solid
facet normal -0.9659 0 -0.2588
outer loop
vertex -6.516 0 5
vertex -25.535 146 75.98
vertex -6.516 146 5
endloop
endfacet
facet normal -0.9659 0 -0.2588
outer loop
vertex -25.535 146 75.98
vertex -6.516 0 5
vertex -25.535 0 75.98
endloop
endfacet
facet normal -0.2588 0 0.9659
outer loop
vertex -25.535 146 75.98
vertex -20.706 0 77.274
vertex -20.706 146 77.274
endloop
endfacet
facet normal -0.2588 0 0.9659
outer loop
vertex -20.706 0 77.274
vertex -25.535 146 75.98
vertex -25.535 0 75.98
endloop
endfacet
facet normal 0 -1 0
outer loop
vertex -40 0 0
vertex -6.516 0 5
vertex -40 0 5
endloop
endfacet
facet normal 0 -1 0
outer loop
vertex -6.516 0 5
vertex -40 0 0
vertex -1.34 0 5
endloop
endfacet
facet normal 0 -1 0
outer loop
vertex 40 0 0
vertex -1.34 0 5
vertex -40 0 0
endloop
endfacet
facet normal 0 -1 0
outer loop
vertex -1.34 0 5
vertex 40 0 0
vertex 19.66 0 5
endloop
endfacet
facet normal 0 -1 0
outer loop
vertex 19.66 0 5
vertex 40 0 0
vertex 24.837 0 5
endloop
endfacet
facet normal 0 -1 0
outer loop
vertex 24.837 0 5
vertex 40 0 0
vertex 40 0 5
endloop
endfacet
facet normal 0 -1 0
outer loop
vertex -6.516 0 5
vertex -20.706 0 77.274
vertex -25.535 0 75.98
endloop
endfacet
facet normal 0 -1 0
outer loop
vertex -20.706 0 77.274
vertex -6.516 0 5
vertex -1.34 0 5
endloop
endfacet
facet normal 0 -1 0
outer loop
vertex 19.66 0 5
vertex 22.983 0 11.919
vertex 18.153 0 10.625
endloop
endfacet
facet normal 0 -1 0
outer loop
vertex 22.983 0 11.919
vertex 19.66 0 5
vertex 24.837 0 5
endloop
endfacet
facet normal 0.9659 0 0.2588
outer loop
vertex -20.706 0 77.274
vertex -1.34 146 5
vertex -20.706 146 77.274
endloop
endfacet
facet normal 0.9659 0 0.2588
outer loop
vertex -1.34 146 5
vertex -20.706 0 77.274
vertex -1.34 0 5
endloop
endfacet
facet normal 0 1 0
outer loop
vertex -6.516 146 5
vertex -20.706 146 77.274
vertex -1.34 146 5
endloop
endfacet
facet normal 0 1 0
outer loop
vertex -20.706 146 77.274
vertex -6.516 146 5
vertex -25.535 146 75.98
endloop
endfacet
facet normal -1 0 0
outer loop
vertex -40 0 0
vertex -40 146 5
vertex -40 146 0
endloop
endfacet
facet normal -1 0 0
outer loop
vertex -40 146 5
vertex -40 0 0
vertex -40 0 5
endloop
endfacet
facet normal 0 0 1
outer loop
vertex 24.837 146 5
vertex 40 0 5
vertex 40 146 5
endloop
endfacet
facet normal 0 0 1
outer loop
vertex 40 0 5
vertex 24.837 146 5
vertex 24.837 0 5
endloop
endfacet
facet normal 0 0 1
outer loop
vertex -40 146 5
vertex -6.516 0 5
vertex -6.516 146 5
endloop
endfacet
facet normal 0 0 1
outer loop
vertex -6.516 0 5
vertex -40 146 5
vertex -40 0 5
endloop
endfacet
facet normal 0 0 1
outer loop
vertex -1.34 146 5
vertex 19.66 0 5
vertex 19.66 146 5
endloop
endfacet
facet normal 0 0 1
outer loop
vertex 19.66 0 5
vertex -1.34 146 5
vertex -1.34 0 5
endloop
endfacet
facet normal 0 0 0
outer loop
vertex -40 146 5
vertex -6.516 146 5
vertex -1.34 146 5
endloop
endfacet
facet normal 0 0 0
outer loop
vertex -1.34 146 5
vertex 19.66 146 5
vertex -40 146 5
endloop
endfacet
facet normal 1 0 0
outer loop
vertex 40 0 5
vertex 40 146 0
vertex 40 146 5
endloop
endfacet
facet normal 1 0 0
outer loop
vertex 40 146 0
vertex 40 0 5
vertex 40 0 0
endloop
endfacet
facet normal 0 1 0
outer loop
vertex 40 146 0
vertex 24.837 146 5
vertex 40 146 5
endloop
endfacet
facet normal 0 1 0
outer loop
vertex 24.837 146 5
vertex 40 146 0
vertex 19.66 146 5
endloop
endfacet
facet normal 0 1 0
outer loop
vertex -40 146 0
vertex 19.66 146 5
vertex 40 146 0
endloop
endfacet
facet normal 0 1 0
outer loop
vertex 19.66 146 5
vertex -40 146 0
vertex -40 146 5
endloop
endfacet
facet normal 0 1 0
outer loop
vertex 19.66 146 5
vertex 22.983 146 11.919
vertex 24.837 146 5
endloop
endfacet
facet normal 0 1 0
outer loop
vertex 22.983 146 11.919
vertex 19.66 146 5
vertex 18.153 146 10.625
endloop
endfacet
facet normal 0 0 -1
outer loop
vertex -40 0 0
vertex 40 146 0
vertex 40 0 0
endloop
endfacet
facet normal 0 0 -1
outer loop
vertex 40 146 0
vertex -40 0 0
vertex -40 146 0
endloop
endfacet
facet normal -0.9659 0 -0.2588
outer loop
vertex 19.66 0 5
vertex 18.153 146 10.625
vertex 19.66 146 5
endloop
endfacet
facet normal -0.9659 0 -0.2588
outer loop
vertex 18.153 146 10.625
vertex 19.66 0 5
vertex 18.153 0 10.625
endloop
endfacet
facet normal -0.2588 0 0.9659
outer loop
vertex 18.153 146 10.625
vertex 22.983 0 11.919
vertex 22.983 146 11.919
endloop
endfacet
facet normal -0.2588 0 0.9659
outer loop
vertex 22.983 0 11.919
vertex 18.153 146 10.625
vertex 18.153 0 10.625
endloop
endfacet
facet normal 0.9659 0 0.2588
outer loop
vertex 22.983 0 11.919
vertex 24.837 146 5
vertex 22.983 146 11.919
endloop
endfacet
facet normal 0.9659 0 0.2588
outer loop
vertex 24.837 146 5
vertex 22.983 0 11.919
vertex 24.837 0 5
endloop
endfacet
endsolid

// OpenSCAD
angle=15;
standx=80;
standy=146;
standthickness=5;
phonethickness=12;
padthickness=9;
jutoutheight=6;
jutoutwidth=5;
bottomcover=15;

difference() {
	union() {
		rotate(-90-angle,[0,1,0])
			cube([standx,standy,standthickness]);
		
		translate([-standx/2,0,0])
			cube([standx,standy,standthickness]);
		
		translate([phonethickness+padthickness,0,0])
			rotate(-angle,[0,1,0])
				cube([jutoutwidth,standy,jutoutheight+standthickness]);
	}
	translate([-standx/2,0,-bottomcover])
		cube([standx,standy,bottomcover]);
}
